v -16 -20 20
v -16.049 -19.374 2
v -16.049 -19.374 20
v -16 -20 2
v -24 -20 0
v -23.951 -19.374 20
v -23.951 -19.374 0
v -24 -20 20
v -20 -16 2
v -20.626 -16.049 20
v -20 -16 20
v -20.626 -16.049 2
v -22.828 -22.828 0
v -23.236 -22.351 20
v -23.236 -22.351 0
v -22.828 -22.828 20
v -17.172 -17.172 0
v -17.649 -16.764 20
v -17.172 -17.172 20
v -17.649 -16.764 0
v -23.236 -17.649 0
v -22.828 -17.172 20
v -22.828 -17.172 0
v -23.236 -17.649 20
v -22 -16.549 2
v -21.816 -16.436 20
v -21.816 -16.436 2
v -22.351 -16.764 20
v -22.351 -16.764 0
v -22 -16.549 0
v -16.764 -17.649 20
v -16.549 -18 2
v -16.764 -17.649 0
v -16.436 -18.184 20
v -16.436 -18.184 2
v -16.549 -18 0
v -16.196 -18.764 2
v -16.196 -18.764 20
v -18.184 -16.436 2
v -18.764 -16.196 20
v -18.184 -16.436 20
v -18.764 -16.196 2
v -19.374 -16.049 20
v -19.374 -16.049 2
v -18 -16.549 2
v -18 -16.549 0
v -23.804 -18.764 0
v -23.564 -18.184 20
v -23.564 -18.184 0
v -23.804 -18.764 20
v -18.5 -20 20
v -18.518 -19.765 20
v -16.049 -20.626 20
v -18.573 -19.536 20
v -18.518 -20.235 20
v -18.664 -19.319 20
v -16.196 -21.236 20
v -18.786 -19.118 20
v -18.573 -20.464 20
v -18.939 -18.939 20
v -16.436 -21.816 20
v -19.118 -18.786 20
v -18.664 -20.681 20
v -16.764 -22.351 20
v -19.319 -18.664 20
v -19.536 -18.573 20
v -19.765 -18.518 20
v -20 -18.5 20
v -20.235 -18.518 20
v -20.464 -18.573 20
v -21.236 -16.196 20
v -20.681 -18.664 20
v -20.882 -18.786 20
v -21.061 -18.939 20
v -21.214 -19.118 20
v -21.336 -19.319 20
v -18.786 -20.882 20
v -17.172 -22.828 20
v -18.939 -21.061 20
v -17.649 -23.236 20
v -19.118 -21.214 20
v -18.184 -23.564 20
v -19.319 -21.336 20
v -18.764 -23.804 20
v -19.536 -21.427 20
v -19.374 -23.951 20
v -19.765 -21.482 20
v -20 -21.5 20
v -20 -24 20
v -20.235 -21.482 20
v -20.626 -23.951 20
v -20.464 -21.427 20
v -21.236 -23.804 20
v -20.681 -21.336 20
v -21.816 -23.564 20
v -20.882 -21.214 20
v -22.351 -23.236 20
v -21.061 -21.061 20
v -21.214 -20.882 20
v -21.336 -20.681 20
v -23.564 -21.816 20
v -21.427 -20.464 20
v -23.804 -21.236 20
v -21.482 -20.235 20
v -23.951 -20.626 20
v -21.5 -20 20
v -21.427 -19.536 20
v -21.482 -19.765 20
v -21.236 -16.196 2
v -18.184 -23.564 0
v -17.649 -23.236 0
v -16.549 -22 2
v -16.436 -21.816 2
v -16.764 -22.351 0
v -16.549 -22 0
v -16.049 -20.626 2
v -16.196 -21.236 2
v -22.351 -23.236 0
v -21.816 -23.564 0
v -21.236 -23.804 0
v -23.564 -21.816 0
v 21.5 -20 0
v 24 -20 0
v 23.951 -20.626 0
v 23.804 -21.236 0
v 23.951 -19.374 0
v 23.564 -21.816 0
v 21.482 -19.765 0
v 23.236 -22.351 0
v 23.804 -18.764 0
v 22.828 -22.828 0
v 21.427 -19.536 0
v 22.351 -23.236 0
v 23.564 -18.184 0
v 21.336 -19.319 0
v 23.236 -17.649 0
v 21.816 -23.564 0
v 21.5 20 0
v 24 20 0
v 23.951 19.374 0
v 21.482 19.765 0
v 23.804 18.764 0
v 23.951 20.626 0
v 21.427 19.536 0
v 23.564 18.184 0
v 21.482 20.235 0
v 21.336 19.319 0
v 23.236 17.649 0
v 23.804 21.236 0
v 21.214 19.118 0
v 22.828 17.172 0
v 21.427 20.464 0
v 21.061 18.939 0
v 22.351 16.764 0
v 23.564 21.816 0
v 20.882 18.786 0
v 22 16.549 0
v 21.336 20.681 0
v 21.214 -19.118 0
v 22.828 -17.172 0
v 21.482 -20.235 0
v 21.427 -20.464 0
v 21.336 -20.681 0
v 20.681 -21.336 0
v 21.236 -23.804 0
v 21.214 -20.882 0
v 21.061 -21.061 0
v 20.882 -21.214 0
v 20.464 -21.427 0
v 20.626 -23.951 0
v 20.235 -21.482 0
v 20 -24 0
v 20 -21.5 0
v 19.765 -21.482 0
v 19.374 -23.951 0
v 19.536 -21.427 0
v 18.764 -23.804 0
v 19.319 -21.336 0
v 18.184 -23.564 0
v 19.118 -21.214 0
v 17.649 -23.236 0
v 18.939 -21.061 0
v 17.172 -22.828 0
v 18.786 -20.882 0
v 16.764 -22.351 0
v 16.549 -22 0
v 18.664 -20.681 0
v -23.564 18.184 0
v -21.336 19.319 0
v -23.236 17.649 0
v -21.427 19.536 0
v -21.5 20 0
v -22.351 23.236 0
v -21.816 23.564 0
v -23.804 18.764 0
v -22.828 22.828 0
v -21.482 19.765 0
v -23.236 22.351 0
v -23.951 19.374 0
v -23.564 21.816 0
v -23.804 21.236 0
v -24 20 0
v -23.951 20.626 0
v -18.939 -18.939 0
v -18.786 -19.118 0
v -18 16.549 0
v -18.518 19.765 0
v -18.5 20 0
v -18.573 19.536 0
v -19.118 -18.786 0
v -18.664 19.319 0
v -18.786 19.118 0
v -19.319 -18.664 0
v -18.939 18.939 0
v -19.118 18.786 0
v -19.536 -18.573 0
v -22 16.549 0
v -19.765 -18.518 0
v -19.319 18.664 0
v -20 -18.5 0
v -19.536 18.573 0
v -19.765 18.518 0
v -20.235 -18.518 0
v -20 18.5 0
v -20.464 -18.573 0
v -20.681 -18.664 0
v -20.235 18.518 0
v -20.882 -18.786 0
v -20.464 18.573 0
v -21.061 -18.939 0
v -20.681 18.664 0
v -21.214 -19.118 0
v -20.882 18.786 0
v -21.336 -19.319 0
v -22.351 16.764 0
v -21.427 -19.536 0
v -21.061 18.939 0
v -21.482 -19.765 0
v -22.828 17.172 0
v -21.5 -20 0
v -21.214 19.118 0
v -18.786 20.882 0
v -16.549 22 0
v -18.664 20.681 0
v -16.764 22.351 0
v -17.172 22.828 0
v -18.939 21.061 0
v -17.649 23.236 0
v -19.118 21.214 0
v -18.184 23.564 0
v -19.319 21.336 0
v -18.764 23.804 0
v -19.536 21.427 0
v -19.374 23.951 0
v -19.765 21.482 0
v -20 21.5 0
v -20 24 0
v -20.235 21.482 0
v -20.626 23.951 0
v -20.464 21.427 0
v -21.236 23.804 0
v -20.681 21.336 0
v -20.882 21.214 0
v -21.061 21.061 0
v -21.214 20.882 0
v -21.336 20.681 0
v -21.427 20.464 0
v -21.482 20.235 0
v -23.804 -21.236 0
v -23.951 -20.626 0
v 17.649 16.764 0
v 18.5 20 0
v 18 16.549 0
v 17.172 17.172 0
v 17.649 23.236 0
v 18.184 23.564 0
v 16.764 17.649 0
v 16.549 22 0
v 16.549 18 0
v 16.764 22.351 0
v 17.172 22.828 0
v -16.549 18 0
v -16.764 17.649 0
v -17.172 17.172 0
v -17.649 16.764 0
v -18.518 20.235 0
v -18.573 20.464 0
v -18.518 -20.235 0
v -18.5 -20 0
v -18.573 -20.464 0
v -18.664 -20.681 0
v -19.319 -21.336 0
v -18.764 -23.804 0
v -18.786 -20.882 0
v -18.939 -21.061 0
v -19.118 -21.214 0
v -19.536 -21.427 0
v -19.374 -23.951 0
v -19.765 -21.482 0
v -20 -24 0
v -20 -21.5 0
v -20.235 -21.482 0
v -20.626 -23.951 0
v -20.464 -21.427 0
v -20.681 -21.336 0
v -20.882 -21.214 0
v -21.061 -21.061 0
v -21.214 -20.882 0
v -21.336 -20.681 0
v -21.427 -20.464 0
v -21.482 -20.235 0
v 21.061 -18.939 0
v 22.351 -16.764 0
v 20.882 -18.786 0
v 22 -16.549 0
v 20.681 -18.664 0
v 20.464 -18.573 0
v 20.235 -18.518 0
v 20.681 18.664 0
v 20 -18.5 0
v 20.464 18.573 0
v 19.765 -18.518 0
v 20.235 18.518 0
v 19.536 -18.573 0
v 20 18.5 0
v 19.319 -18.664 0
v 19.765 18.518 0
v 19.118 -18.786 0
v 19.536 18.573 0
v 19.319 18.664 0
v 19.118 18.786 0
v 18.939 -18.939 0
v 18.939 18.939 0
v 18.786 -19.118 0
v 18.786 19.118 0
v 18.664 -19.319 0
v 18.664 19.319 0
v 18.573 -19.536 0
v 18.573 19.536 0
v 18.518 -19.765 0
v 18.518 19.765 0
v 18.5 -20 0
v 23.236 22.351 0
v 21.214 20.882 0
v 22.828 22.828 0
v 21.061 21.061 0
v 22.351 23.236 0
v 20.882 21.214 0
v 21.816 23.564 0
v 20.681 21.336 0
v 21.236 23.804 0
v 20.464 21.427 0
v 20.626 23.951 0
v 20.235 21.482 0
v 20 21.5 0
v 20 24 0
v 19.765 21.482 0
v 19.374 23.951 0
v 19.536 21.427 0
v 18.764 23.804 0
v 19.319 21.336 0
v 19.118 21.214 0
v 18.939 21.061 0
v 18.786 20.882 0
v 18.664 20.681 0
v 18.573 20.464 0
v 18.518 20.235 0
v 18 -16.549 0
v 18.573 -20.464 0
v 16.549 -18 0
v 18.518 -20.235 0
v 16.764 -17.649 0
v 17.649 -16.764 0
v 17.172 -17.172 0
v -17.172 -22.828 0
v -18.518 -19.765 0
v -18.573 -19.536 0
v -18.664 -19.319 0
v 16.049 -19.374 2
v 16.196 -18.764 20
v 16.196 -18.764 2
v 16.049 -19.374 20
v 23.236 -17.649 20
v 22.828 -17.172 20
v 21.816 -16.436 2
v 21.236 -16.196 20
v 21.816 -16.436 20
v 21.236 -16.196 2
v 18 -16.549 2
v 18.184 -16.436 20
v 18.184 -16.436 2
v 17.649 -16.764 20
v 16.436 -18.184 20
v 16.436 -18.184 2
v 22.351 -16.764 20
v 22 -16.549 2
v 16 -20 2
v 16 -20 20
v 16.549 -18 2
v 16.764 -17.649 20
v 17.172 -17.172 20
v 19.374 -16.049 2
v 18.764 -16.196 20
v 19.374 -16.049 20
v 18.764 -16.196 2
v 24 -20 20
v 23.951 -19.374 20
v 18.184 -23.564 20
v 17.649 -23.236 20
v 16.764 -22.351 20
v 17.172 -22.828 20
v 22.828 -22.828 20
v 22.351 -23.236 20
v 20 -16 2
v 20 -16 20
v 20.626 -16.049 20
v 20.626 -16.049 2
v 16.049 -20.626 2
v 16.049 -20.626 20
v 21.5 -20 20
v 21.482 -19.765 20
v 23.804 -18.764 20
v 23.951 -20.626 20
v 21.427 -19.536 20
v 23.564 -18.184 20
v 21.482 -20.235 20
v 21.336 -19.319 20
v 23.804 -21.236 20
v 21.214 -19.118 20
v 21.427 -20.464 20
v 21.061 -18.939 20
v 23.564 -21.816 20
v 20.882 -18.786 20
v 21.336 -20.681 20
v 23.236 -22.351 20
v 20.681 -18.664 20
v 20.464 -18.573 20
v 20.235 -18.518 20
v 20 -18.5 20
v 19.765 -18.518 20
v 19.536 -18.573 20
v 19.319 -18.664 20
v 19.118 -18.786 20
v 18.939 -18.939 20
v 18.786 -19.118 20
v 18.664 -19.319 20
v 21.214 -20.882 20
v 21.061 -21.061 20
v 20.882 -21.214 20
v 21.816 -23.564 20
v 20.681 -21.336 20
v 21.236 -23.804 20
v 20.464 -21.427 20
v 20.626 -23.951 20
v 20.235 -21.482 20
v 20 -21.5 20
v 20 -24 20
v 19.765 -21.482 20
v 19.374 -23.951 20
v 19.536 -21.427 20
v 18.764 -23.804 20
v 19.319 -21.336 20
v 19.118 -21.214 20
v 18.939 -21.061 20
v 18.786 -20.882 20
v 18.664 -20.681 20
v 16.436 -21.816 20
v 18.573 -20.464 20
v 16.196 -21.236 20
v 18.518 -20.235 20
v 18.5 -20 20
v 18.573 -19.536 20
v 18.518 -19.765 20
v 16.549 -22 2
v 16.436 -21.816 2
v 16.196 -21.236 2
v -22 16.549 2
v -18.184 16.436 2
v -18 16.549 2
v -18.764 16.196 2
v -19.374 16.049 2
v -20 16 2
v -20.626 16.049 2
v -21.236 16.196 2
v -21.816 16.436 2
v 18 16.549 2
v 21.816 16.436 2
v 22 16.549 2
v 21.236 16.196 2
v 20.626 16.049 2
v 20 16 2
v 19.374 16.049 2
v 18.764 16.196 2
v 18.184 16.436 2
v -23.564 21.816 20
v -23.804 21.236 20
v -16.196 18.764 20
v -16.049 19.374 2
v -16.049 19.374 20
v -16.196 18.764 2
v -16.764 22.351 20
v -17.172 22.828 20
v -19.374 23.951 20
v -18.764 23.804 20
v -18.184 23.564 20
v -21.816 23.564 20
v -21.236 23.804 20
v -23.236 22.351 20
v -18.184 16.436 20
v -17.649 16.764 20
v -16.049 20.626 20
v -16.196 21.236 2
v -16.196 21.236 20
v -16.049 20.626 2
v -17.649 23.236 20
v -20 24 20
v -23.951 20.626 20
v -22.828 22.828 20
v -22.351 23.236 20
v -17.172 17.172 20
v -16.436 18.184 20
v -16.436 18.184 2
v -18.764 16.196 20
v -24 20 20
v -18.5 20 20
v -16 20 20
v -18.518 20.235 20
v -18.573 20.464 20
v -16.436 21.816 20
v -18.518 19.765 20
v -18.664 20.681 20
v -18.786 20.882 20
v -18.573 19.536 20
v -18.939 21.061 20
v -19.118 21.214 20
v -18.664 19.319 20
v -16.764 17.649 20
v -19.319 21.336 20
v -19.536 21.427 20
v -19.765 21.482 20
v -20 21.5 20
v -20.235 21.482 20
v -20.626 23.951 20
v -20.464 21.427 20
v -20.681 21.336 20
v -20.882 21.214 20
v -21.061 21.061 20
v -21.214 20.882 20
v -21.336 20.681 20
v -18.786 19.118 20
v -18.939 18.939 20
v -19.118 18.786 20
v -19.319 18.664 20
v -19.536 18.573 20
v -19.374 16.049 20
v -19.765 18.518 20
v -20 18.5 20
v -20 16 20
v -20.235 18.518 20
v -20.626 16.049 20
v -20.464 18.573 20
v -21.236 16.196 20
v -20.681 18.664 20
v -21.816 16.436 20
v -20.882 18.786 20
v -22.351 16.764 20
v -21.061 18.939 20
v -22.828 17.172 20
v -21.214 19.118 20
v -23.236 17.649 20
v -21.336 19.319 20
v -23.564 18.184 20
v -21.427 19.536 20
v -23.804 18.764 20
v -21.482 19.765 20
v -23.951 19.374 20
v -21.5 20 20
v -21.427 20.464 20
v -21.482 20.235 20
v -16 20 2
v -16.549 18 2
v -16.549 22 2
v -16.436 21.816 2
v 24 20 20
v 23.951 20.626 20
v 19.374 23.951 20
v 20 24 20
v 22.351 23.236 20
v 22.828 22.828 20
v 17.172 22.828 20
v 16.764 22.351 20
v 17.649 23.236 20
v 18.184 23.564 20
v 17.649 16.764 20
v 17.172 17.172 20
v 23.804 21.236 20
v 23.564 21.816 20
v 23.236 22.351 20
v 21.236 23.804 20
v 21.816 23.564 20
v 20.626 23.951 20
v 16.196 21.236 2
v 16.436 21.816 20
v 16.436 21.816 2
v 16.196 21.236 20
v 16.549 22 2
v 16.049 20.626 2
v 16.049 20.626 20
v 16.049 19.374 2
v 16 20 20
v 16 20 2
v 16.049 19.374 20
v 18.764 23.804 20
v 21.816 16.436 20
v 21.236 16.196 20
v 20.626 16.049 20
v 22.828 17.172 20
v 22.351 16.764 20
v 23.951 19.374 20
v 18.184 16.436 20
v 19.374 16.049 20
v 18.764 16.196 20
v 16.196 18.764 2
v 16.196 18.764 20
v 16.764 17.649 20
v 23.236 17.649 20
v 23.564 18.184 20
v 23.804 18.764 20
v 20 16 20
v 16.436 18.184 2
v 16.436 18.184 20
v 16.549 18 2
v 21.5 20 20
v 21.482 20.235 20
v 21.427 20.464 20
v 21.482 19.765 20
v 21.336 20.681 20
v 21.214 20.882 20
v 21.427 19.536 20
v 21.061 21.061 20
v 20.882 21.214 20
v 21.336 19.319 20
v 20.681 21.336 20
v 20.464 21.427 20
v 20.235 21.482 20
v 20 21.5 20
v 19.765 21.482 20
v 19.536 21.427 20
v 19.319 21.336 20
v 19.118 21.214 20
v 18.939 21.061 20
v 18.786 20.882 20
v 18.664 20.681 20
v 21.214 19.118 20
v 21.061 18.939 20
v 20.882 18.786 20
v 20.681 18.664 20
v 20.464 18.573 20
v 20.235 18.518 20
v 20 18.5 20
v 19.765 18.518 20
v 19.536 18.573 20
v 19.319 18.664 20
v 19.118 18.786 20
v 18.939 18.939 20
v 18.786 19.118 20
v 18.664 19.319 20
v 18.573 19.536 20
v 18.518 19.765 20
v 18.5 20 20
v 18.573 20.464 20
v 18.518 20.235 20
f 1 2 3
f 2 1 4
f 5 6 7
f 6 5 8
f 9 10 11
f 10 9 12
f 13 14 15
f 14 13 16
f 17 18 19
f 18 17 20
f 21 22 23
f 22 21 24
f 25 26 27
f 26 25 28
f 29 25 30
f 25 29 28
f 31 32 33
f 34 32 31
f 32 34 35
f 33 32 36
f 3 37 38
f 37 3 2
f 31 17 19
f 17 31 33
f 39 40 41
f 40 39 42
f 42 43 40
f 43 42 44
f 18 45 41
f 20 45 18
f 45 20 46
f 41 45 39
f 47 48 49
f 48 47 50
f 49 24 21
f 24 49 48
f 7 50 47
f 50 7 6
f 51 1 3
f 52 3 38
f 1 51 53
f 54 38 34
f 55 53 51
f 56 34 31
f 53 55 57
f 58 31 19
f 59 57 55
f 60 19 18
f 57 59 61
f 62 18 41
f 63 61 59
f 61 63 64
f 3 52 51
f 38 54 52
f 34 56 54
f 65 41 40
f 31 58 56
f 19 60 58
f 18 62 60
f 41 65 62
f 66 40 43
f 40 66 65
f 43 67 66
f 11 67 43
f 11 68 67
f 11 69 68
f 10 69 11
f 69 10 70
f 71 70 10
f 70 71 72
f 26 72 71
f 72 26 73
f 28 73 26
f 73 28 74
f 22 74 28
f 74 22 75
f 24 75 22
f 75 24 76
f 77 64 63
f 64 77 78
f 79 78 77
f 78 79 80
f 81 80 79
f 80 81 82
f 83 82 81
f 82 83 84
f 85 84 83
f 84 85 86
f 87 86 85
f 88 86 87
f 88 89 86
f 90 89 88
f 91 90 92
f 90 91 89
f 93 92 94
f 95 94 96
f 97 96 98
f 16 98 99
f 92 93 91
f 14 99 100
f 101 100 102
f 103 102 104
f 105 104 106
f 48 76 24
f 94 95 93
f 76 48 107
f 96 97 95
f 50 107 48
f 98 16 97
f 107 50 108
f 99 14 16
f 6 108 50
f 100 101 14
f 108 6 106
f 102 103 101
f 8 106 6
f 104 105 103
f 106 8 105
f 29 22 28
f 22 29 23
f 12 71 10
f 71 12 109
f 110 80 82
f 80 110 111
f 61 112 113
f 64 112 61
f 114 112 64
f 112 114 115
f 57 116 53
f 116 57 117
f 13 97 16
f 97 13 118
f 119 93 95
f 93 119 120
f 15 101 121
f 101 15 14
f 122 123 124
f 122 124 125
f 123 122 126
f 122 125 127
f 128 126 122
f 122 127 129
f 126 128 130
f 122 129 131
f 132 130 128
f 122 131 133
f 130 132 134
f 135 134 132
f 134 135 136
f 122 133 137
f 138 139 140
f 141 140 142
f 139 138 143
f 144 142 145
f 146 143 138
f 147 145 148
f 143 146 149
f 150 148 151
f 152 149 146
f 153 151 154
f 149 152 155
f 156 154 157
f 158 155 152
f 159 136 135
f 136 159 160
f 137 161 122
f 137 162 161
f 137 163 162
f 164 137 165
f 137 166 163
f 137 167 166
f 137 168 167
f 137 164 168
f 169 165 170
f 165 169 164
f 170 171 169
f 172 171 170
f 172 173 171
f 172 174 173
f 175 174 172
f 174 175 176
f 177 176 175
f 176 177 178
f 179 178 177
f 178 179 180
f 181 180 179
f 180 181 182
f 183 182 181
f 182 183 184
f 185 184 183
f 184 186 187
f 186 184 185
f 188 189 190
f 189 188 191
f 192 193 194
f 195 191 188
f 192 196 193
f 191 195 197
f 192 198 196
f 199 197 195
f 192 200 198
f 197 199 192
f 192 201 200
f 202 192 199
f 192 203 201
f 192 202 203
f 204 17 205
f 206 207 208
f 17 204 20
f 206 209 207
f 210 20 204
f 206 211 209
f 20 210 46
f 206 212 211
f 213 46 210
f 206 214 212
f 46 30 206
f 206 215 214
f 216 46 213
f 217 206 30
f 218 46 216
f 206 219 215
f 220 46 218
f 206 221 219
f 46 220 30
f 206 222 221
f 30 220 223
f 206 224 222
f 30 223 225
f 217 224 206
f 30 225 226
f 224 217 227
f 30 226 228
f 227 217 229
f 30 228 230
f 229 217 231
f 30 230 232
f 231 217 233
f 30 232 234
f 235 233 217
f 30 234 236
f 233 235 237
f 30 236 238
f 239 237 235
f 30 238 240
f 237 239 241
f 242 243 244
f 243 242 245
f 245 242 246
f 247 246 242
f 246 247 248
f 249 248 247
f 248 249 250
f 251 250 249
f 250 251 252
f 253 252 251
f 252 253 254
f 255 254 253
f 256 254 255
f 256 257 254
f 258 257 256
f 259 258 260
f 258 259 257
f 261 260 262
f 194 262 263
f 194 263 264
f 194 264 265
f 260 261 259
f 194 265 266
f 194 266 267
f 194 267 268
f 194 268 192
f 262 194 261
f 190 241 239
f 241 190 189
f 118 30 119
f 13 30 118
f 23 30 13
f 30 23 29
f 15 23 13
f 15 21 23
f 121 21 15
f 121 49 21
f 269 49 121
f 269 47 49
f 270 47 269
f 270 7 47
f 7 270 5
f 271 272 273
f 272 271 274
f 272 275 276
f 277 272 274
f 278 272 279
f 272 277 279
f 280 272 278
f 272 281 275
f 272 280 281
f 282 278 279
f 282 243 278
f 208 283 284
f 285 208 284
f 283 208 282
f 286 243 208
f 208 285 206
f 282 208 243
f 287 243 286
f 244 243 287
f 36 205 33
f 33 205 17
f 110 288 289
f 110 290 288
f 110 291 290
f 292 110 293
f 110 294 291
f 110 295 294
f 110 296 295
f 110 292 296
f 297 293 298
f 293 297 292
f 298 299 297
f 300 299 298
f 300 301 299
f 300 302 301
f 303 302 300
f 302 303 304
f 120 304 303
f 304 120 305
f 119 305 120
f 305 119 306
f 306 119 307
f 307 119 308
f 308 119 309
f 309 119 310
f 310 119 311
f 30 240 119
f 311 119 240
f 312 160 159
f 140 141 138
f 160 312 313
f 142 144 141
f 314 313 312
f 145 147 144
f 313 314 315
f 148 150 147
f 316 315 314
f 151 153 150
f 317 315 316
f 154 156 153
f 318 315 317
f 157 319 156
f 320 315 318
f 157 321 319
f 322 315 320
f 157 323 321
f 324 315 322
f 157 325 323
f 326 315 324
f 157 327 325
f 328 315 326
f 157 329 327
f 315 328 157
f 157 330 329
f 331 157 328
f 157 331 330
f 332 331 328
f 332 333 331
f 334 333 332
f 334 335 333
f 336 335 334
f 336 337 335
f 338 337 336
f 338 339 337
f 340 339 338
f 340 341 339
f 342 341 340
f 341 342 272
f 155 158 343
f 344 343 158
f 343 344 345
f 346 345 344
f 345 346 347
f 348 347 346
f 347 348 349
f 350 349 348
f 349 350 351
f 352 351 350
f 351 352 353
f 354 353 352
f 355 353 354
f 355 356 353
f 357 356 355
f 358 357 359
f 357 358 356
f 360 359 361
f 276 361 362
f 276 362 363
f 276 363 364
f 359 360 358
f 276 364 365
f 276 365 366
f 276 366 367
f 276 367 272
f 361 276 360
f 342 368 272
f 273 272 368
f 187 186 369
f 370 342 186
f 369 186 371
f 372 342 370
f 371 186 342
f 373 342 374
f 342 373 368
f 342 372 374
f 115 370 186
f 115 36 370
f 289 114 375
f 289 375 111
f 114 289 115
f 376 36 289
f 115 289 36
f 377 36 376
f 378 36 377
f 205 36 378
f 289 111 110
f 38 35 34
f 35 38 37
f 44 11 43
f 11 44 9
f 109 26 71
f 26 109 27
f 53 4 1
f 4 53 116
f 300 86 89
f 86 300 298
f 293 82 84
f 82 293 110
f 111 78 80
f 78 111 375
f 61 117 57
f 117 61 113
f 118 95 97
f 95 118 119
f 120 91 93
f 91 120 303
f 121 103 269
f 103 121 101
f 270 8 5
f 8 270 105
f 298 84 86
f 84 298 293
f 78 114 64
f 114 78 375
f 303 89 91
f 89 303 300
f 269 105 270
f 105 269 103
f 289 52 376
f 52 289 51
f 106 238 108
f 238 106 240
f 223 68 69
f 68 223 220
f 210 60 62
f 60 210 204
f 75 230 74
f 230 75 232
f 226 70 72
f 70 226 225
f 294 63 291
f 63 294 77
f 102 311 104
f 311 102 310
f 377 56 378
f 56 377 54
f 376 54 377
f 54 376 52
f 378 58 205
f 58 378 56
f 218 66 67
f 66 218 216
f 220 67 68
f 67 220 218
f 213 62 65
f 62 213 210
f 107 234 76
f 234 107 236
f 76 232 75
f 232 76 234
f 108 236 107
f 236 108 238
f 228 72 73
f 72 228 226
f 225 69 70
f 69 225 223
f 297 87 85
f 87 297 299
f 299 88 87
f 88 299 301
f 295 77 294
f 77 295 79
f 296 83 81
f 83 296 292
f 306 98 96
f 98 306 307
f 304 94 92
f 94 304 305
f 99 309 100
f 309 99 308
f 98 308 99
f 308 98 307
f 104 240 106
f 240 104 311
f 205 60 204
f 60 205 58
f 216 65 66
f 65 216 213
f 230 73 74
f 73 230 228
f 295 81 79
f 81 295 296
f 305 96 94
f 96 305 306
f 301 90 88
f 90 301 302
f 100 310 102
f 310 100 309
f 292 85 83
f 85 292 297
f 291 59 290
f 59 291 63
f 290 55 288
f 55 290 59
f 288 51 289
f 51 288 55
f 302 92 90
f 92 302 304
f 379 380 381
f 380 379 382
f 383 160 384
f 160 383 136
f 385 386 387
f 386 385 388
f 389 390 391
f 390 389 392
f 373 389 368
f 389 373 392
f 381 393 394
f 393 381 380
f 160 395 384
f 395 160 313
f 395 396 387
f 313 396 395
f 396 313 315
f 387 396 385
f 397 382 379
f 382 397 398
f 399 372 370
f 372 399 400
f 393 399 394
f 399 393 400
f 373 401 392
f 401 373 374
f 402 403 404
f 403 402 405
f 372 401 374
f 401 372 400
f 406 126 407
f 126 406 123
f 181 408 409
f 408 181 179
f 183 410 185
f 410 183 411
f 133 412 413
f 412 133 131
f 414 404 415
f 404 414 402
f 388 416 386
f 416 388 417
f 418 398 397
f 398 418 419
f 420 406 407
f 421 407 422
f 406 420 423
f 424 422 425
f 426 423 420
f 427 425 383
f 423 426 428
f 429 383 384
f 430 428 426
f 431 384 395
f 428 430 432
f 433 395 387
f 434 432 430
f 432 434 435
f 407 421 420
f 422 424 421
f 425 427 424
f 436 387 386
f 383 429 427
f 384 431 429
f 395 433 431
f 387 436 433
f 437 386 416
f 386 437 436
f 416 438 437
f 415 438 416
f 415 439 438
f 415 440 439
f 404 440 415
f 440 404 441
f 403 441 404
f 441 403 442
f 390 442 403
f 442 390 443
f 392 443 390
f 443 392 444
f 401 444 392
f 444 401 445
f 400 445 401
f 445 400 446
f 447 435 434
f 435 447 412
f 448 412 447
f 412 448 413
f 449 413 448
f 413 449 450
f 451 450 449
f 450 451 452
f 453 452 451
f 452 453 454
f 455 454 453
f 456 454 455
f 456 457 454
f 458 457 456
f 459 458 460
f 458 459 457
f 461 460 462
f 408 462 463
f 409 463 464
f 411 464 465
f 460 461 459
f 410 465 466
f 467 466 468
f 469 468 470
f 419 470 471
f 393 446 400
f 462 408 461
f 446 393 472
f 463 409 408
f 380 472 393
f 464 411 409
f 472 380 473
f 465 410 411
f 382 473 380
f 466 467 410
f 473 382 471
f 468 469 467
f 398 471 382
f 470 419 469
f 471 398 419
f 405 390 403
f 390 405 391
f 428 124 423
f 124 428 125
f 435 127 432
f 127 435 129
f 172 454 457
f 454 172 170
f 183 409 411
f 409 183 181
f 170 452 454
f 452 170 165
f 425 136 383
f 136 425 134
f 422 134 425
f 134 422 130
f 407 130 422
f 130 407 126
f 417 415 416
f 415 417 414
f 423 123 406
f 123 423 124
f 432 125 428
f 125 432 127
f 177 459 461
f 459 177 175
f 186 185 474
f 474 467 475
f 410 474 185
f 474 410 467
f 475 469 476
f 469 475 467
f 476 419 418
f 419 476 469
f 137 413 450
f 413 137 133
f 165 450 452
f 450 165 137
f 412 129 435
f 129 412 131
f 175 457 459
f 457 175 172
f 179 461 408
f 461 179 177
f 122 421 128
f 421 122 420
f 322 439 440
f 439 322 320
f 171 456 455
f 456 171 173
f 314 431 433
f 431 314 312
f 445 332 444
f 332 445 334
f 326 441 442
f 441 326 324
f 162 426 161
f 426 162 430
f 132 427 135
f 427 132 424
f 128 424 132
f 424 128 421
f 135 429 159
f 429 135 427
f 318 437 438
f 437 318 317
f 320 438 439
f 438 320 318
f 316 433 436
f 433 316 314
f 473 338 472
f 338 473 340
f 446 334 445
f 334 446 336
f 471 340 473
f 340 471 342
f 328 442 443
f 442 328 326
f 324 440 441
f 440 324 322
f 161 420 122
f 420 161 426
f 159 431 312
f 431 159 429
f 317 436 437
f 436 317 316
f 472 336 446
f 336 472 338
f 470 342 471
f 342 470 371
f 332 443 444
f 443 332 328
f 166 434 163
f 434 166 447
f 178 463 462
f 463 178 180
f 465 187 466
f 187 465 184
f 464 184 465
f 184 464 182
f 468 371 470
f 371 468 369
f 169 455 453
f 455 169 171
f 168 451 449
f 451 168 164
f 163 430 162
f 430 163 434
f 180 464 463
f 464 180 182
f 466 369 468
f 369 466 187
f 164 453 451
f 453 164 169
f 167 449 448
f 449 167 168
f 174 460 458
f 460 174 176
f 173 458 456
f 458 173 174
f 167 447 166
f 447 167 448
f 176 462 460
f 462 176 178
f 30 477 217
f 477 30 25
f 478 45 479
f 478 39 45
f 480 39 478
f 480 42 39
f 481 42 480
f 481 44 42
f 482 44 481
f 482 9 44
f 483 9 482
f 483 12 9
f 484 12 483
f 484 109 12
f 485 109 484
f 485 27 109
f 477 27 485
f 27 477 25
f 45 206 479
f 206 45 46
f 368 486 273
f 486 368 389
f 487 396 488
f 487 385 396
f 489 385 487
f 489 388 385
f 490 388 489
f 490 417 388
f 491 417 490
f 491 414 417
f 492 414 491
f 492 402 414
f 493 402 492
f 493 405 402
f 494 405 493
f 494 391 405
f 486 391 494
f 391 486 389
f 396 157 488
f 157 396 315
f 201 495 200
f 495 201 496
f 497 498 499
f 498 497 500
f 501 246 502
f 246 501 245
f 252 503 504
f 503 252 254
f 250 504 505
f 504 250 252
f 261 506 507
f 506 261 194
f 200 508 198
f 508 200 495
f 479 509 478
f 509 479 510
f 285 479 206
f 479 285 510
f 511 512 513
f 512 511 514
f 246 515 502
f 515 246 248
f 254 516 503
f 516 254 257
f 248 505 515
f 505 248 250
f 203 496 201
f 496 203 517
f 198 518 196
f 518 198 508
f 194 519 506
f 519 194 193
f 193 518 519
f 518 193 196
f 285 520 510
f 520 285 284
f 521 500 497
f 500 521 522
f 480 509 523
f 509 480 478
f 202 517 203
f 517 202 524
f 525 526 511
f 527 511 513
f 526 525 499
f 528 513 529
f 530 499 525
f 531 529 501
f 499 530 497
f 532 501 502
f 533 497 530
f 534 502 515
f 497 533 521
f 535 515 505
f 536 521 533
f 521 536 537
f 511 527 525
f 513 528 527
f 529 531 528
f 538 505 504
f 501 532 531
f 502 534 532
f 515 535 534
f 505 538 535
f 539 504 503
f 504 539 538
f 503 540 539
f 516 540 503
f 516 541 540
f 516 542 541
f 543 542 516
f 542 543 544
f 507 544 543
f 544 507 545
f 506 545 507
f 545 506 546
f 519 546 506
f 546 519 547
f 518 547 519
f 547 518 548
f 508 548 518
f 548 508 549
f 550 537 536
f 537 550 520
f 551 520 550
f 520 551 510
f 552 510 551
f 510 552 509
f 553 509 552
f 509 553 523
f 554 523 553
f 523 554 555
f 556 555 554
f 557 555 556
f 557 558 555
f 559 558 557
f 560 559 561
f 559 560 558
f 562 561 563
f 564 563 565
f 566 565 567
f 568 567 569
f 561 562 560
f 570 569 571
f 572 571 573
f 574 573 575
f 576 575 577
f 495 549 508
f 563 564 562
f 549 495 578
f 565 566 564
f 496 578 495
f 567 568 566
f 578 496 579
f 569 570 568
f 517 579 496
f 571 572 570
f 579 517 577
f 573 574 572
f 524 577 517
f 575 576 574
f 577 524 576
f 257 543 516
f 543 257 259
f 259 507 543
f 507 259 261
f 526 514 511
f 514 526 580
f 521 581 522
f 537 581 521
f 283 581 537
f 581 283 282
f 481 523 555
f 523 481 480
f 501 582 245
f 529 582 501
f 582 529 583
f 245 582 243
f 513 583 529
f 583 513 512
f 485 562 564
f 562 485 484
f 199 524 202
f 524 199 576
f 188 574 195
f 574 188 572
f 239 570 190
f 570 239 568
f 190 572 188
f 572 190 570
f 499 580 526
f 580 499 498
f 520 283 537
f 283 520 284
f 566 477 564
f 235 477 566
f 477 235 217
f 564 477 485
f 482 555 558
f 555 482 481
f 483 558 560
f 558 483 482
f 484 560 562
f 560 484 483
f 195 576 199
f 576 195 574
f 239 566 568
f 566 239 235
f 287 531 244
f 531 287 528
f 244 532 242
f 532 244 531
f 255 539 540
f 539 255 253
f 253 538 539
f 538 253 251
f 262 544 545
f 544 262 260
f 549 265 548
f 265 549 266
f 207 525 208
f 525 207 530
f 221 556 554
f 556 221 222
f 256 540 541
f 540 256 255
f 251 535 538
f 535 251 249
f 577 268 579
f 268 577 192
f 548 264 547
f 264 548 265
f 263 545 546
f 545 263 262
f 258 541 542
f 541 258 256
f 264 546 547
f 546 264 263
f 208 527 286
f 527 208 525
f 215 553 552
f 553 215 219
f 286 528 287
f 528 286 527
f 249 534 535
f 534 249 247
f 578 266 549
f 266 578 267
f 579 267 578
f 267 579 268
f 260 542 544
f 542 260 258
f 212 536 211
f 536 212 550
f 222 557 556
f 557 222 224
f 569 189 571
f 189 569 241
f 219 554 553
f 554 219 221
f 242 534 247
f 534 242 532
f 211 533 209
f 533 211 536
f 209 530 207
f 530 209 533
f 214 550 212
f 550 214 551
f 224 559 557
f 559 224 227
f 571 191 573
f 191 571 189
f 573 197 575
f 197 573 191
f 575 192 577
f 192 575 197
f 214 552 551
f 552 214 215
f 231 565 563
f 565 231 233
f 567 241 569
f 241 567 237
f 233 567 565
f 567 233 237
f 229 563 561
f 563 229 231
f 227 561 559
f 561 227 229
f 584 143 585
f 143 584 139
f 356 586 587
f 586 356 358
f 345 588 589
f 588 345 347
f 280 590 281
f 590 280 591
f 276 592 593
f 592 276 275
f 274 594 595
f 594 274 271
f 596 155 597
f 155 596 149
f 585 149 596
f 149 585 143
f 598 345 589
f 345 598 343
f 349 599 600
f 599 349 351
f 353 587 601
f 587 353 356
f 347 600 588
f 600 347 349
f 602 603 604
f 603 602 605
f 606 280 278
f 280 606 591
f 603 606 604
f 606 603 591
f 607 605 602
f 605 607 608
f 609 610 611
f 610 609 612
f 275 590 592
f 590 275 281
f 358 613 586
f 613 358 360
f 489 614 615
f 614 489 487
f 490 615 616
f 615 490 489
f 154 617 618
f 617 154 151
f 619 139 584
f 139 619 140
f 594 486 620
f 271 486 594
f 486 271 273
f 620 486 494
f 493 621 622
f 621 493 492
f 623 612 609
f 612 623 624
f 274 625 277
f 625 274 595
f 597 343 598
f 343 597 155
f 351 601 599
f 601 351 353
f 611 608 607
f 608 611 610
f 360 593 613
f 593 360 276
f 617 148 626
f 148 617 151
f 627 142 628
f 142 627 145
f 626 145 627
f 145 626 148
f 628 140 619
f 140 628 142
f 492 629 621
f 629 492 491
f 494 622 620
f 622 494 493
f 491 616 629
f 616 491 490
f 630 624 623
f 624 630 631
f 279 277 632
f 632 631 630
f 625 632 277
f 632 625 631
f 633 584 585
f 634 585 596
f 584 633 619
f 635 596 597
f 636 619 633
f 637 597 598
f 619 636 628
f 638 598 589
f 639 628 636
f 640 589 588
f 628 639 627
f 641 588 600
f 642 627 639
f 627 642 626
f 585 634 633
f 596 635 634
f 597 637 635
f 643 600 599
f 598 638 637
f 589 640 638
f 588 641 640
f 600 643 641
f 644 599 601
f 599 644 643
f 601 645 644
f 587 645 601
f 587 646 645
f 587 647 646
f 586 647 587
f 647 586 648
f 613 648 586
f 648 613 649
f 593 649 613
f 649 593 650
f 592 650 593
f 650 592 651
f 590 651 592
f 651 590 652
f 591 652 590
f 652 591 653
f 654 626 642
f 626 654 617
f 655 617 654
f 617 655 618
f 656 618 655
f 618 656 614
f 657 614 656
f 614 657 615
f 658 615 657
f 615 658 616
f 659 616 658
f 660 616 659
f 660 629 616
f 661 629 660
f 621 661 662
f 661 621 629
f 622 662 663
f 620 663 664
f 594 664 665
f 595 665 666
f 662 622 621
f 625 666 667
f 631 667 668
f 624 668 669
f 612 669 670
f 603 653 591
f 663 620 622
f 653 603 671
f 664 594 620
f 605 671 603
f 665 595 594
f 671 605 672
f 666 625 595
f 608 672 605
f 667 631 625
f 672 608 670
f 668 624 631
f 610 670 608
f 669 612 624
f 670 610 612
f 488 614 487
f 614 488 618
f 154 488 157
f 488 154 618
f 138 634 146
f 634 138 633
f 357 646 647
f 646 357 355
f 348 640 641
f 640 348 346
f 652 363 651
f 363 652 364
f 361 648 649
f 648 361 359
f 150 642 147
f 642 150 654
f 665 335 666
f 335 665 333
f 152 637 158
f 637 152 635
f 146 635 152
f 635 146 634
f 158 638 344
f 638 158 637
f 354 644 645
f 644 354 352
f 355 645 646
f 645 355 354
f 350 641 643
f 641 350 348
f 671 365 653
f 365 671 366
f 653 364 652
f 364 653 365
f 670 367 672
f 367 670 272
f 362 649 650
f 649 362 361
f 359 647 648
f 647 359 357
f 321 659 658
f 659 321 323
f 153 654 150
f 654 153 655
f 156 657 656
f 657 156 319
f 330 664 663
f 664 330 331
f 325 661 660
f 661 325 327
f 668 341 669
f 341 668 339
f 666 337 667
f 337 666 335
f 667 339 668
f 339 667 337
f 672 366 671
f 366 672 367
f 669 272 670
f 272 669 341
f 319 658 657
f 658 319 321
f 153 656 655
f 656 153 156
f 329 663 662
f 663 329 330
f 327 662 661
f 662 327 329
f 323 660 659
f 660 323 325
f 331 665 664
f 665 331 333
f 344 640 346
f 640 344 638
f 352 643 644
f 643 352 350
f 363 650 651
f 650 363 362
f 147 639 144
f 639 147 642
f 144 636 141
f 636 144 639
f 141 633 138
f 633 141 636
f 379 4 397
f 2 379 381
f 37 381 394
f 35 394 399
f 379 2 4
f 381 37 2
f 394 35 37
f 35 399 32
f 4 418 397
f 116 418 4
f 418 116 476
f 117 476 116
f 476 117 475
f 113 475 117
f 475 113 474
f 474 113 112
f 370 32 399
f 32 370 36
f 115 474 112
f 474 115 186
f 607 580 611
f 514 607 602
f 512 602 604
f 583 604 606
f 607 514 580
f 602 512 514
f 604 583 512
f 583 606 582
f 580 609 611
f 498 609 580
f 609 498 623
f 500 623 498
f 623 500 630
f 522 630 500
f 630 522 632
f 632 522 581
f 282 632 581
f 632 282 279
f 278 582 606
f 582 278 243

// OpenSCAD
// Internal diameter of holes
internal_diameter = 3.0;

// External diameter of pillar
external_diameter = 8;

// Minimum wall thickness of pillars
minimum_wall_thickness = 1;

// Distance between holes on X axis
width = 40;

// Distance between holes on Y axis
length = 40;

// Height of pillars
height = 20;

// Number of cylinder segments
hole_segments = 40;

// Height of connecting strips
strip_height = 2;

// Internal radius of holes
internal_radius = internal_diameter / 2;

// External radius of pillars is limited by the minimum wall thickness
external_radius = max(external_diameter / 2, internal_radius + minimum_wall_thickness);

// Width of the connecting strips
strip_width = external_radius;

// prevents the connecting strips from encroaching on the holes
clearance = internal_diameter + 0.05;

module hide_parameters_below_this_point() {}

// prevents coplanar polygons on cylinder subtraction
fudge = 0.05;

//offset for horizontal conextion
z=0; // =0;


//HEX

module hex(hole, wall, thick){
    hole = hole;
    wall = wall;
    difference(){
        rotate([0, 0, 30]) cylinder(d = (hole + wall), h = thick, $fn = 6);
        translate([0, 0, -0.1]) rotate([0, 0, 30]) cylinder(d = hole, h = thick + 0.2, $fn = 6);
    }
}



module hexgrid(box, holediameter, wallthickness) {
    a = (holediameter + (wallthickness/2))*sin(60);
    for(x = [holediameter/2: a: box[0]]) {
        for(y = [holediameter/2: 2*a*sin(60): box[1]]) {
            translate([x, y, 0]) hex(holediameter, wallthickness, box[2]);
            translate([x + a*cos(60), y + a*sin(60), 0]) hex(holediameter, wallthickness, box[2]);

        }
    }
        
}


union() {
    for (y=[-1:2:1]) {
        for (x=[-1:2:1]) {
            // subtract two cylinders to make a pillar
            difference() 
                 {
                // outside of cylinder
                translate([x*width/2,y*length/2,z]) {
                    cylinder(r=external_radius, height, $fn=hole_segments); 
                }
                // inside of cylinder
                translate([x*width/2,y*length/2,-fudge/2.+z]) {
                    cylinder(r=internal_radius, height+fudge-z, $fn=hole_segments); 
                }
            }
            // connect along Y axis
            translate([x*width/2,0,strip_height/2]) {
                cube([strip_width,length-clearance,strip_height],center=true);
            }
        }
        // connect along X axis
        translate([0,y*length/2,strip_height/2]) {
             cube([width-clearance,strip_width,strip_height],center=true);
        }
    }
    // first arg is vector that defines the bounding box, length, width, height
// second arg in the 'diameter' of the holes. In OpenScad, this refers to the corner-to-corner diameter, not flat-to-flat
// this diameter is 2/sqrt(3) times larger than flat to flat
// third arg is wall thickness.  This also is measured that the corners, not the flats. 
//translate([-(width)/2.,-(length)/2,0])
//hexgrid([width - clearance, length-clearance-1,strip_height], 20, 4);
}
